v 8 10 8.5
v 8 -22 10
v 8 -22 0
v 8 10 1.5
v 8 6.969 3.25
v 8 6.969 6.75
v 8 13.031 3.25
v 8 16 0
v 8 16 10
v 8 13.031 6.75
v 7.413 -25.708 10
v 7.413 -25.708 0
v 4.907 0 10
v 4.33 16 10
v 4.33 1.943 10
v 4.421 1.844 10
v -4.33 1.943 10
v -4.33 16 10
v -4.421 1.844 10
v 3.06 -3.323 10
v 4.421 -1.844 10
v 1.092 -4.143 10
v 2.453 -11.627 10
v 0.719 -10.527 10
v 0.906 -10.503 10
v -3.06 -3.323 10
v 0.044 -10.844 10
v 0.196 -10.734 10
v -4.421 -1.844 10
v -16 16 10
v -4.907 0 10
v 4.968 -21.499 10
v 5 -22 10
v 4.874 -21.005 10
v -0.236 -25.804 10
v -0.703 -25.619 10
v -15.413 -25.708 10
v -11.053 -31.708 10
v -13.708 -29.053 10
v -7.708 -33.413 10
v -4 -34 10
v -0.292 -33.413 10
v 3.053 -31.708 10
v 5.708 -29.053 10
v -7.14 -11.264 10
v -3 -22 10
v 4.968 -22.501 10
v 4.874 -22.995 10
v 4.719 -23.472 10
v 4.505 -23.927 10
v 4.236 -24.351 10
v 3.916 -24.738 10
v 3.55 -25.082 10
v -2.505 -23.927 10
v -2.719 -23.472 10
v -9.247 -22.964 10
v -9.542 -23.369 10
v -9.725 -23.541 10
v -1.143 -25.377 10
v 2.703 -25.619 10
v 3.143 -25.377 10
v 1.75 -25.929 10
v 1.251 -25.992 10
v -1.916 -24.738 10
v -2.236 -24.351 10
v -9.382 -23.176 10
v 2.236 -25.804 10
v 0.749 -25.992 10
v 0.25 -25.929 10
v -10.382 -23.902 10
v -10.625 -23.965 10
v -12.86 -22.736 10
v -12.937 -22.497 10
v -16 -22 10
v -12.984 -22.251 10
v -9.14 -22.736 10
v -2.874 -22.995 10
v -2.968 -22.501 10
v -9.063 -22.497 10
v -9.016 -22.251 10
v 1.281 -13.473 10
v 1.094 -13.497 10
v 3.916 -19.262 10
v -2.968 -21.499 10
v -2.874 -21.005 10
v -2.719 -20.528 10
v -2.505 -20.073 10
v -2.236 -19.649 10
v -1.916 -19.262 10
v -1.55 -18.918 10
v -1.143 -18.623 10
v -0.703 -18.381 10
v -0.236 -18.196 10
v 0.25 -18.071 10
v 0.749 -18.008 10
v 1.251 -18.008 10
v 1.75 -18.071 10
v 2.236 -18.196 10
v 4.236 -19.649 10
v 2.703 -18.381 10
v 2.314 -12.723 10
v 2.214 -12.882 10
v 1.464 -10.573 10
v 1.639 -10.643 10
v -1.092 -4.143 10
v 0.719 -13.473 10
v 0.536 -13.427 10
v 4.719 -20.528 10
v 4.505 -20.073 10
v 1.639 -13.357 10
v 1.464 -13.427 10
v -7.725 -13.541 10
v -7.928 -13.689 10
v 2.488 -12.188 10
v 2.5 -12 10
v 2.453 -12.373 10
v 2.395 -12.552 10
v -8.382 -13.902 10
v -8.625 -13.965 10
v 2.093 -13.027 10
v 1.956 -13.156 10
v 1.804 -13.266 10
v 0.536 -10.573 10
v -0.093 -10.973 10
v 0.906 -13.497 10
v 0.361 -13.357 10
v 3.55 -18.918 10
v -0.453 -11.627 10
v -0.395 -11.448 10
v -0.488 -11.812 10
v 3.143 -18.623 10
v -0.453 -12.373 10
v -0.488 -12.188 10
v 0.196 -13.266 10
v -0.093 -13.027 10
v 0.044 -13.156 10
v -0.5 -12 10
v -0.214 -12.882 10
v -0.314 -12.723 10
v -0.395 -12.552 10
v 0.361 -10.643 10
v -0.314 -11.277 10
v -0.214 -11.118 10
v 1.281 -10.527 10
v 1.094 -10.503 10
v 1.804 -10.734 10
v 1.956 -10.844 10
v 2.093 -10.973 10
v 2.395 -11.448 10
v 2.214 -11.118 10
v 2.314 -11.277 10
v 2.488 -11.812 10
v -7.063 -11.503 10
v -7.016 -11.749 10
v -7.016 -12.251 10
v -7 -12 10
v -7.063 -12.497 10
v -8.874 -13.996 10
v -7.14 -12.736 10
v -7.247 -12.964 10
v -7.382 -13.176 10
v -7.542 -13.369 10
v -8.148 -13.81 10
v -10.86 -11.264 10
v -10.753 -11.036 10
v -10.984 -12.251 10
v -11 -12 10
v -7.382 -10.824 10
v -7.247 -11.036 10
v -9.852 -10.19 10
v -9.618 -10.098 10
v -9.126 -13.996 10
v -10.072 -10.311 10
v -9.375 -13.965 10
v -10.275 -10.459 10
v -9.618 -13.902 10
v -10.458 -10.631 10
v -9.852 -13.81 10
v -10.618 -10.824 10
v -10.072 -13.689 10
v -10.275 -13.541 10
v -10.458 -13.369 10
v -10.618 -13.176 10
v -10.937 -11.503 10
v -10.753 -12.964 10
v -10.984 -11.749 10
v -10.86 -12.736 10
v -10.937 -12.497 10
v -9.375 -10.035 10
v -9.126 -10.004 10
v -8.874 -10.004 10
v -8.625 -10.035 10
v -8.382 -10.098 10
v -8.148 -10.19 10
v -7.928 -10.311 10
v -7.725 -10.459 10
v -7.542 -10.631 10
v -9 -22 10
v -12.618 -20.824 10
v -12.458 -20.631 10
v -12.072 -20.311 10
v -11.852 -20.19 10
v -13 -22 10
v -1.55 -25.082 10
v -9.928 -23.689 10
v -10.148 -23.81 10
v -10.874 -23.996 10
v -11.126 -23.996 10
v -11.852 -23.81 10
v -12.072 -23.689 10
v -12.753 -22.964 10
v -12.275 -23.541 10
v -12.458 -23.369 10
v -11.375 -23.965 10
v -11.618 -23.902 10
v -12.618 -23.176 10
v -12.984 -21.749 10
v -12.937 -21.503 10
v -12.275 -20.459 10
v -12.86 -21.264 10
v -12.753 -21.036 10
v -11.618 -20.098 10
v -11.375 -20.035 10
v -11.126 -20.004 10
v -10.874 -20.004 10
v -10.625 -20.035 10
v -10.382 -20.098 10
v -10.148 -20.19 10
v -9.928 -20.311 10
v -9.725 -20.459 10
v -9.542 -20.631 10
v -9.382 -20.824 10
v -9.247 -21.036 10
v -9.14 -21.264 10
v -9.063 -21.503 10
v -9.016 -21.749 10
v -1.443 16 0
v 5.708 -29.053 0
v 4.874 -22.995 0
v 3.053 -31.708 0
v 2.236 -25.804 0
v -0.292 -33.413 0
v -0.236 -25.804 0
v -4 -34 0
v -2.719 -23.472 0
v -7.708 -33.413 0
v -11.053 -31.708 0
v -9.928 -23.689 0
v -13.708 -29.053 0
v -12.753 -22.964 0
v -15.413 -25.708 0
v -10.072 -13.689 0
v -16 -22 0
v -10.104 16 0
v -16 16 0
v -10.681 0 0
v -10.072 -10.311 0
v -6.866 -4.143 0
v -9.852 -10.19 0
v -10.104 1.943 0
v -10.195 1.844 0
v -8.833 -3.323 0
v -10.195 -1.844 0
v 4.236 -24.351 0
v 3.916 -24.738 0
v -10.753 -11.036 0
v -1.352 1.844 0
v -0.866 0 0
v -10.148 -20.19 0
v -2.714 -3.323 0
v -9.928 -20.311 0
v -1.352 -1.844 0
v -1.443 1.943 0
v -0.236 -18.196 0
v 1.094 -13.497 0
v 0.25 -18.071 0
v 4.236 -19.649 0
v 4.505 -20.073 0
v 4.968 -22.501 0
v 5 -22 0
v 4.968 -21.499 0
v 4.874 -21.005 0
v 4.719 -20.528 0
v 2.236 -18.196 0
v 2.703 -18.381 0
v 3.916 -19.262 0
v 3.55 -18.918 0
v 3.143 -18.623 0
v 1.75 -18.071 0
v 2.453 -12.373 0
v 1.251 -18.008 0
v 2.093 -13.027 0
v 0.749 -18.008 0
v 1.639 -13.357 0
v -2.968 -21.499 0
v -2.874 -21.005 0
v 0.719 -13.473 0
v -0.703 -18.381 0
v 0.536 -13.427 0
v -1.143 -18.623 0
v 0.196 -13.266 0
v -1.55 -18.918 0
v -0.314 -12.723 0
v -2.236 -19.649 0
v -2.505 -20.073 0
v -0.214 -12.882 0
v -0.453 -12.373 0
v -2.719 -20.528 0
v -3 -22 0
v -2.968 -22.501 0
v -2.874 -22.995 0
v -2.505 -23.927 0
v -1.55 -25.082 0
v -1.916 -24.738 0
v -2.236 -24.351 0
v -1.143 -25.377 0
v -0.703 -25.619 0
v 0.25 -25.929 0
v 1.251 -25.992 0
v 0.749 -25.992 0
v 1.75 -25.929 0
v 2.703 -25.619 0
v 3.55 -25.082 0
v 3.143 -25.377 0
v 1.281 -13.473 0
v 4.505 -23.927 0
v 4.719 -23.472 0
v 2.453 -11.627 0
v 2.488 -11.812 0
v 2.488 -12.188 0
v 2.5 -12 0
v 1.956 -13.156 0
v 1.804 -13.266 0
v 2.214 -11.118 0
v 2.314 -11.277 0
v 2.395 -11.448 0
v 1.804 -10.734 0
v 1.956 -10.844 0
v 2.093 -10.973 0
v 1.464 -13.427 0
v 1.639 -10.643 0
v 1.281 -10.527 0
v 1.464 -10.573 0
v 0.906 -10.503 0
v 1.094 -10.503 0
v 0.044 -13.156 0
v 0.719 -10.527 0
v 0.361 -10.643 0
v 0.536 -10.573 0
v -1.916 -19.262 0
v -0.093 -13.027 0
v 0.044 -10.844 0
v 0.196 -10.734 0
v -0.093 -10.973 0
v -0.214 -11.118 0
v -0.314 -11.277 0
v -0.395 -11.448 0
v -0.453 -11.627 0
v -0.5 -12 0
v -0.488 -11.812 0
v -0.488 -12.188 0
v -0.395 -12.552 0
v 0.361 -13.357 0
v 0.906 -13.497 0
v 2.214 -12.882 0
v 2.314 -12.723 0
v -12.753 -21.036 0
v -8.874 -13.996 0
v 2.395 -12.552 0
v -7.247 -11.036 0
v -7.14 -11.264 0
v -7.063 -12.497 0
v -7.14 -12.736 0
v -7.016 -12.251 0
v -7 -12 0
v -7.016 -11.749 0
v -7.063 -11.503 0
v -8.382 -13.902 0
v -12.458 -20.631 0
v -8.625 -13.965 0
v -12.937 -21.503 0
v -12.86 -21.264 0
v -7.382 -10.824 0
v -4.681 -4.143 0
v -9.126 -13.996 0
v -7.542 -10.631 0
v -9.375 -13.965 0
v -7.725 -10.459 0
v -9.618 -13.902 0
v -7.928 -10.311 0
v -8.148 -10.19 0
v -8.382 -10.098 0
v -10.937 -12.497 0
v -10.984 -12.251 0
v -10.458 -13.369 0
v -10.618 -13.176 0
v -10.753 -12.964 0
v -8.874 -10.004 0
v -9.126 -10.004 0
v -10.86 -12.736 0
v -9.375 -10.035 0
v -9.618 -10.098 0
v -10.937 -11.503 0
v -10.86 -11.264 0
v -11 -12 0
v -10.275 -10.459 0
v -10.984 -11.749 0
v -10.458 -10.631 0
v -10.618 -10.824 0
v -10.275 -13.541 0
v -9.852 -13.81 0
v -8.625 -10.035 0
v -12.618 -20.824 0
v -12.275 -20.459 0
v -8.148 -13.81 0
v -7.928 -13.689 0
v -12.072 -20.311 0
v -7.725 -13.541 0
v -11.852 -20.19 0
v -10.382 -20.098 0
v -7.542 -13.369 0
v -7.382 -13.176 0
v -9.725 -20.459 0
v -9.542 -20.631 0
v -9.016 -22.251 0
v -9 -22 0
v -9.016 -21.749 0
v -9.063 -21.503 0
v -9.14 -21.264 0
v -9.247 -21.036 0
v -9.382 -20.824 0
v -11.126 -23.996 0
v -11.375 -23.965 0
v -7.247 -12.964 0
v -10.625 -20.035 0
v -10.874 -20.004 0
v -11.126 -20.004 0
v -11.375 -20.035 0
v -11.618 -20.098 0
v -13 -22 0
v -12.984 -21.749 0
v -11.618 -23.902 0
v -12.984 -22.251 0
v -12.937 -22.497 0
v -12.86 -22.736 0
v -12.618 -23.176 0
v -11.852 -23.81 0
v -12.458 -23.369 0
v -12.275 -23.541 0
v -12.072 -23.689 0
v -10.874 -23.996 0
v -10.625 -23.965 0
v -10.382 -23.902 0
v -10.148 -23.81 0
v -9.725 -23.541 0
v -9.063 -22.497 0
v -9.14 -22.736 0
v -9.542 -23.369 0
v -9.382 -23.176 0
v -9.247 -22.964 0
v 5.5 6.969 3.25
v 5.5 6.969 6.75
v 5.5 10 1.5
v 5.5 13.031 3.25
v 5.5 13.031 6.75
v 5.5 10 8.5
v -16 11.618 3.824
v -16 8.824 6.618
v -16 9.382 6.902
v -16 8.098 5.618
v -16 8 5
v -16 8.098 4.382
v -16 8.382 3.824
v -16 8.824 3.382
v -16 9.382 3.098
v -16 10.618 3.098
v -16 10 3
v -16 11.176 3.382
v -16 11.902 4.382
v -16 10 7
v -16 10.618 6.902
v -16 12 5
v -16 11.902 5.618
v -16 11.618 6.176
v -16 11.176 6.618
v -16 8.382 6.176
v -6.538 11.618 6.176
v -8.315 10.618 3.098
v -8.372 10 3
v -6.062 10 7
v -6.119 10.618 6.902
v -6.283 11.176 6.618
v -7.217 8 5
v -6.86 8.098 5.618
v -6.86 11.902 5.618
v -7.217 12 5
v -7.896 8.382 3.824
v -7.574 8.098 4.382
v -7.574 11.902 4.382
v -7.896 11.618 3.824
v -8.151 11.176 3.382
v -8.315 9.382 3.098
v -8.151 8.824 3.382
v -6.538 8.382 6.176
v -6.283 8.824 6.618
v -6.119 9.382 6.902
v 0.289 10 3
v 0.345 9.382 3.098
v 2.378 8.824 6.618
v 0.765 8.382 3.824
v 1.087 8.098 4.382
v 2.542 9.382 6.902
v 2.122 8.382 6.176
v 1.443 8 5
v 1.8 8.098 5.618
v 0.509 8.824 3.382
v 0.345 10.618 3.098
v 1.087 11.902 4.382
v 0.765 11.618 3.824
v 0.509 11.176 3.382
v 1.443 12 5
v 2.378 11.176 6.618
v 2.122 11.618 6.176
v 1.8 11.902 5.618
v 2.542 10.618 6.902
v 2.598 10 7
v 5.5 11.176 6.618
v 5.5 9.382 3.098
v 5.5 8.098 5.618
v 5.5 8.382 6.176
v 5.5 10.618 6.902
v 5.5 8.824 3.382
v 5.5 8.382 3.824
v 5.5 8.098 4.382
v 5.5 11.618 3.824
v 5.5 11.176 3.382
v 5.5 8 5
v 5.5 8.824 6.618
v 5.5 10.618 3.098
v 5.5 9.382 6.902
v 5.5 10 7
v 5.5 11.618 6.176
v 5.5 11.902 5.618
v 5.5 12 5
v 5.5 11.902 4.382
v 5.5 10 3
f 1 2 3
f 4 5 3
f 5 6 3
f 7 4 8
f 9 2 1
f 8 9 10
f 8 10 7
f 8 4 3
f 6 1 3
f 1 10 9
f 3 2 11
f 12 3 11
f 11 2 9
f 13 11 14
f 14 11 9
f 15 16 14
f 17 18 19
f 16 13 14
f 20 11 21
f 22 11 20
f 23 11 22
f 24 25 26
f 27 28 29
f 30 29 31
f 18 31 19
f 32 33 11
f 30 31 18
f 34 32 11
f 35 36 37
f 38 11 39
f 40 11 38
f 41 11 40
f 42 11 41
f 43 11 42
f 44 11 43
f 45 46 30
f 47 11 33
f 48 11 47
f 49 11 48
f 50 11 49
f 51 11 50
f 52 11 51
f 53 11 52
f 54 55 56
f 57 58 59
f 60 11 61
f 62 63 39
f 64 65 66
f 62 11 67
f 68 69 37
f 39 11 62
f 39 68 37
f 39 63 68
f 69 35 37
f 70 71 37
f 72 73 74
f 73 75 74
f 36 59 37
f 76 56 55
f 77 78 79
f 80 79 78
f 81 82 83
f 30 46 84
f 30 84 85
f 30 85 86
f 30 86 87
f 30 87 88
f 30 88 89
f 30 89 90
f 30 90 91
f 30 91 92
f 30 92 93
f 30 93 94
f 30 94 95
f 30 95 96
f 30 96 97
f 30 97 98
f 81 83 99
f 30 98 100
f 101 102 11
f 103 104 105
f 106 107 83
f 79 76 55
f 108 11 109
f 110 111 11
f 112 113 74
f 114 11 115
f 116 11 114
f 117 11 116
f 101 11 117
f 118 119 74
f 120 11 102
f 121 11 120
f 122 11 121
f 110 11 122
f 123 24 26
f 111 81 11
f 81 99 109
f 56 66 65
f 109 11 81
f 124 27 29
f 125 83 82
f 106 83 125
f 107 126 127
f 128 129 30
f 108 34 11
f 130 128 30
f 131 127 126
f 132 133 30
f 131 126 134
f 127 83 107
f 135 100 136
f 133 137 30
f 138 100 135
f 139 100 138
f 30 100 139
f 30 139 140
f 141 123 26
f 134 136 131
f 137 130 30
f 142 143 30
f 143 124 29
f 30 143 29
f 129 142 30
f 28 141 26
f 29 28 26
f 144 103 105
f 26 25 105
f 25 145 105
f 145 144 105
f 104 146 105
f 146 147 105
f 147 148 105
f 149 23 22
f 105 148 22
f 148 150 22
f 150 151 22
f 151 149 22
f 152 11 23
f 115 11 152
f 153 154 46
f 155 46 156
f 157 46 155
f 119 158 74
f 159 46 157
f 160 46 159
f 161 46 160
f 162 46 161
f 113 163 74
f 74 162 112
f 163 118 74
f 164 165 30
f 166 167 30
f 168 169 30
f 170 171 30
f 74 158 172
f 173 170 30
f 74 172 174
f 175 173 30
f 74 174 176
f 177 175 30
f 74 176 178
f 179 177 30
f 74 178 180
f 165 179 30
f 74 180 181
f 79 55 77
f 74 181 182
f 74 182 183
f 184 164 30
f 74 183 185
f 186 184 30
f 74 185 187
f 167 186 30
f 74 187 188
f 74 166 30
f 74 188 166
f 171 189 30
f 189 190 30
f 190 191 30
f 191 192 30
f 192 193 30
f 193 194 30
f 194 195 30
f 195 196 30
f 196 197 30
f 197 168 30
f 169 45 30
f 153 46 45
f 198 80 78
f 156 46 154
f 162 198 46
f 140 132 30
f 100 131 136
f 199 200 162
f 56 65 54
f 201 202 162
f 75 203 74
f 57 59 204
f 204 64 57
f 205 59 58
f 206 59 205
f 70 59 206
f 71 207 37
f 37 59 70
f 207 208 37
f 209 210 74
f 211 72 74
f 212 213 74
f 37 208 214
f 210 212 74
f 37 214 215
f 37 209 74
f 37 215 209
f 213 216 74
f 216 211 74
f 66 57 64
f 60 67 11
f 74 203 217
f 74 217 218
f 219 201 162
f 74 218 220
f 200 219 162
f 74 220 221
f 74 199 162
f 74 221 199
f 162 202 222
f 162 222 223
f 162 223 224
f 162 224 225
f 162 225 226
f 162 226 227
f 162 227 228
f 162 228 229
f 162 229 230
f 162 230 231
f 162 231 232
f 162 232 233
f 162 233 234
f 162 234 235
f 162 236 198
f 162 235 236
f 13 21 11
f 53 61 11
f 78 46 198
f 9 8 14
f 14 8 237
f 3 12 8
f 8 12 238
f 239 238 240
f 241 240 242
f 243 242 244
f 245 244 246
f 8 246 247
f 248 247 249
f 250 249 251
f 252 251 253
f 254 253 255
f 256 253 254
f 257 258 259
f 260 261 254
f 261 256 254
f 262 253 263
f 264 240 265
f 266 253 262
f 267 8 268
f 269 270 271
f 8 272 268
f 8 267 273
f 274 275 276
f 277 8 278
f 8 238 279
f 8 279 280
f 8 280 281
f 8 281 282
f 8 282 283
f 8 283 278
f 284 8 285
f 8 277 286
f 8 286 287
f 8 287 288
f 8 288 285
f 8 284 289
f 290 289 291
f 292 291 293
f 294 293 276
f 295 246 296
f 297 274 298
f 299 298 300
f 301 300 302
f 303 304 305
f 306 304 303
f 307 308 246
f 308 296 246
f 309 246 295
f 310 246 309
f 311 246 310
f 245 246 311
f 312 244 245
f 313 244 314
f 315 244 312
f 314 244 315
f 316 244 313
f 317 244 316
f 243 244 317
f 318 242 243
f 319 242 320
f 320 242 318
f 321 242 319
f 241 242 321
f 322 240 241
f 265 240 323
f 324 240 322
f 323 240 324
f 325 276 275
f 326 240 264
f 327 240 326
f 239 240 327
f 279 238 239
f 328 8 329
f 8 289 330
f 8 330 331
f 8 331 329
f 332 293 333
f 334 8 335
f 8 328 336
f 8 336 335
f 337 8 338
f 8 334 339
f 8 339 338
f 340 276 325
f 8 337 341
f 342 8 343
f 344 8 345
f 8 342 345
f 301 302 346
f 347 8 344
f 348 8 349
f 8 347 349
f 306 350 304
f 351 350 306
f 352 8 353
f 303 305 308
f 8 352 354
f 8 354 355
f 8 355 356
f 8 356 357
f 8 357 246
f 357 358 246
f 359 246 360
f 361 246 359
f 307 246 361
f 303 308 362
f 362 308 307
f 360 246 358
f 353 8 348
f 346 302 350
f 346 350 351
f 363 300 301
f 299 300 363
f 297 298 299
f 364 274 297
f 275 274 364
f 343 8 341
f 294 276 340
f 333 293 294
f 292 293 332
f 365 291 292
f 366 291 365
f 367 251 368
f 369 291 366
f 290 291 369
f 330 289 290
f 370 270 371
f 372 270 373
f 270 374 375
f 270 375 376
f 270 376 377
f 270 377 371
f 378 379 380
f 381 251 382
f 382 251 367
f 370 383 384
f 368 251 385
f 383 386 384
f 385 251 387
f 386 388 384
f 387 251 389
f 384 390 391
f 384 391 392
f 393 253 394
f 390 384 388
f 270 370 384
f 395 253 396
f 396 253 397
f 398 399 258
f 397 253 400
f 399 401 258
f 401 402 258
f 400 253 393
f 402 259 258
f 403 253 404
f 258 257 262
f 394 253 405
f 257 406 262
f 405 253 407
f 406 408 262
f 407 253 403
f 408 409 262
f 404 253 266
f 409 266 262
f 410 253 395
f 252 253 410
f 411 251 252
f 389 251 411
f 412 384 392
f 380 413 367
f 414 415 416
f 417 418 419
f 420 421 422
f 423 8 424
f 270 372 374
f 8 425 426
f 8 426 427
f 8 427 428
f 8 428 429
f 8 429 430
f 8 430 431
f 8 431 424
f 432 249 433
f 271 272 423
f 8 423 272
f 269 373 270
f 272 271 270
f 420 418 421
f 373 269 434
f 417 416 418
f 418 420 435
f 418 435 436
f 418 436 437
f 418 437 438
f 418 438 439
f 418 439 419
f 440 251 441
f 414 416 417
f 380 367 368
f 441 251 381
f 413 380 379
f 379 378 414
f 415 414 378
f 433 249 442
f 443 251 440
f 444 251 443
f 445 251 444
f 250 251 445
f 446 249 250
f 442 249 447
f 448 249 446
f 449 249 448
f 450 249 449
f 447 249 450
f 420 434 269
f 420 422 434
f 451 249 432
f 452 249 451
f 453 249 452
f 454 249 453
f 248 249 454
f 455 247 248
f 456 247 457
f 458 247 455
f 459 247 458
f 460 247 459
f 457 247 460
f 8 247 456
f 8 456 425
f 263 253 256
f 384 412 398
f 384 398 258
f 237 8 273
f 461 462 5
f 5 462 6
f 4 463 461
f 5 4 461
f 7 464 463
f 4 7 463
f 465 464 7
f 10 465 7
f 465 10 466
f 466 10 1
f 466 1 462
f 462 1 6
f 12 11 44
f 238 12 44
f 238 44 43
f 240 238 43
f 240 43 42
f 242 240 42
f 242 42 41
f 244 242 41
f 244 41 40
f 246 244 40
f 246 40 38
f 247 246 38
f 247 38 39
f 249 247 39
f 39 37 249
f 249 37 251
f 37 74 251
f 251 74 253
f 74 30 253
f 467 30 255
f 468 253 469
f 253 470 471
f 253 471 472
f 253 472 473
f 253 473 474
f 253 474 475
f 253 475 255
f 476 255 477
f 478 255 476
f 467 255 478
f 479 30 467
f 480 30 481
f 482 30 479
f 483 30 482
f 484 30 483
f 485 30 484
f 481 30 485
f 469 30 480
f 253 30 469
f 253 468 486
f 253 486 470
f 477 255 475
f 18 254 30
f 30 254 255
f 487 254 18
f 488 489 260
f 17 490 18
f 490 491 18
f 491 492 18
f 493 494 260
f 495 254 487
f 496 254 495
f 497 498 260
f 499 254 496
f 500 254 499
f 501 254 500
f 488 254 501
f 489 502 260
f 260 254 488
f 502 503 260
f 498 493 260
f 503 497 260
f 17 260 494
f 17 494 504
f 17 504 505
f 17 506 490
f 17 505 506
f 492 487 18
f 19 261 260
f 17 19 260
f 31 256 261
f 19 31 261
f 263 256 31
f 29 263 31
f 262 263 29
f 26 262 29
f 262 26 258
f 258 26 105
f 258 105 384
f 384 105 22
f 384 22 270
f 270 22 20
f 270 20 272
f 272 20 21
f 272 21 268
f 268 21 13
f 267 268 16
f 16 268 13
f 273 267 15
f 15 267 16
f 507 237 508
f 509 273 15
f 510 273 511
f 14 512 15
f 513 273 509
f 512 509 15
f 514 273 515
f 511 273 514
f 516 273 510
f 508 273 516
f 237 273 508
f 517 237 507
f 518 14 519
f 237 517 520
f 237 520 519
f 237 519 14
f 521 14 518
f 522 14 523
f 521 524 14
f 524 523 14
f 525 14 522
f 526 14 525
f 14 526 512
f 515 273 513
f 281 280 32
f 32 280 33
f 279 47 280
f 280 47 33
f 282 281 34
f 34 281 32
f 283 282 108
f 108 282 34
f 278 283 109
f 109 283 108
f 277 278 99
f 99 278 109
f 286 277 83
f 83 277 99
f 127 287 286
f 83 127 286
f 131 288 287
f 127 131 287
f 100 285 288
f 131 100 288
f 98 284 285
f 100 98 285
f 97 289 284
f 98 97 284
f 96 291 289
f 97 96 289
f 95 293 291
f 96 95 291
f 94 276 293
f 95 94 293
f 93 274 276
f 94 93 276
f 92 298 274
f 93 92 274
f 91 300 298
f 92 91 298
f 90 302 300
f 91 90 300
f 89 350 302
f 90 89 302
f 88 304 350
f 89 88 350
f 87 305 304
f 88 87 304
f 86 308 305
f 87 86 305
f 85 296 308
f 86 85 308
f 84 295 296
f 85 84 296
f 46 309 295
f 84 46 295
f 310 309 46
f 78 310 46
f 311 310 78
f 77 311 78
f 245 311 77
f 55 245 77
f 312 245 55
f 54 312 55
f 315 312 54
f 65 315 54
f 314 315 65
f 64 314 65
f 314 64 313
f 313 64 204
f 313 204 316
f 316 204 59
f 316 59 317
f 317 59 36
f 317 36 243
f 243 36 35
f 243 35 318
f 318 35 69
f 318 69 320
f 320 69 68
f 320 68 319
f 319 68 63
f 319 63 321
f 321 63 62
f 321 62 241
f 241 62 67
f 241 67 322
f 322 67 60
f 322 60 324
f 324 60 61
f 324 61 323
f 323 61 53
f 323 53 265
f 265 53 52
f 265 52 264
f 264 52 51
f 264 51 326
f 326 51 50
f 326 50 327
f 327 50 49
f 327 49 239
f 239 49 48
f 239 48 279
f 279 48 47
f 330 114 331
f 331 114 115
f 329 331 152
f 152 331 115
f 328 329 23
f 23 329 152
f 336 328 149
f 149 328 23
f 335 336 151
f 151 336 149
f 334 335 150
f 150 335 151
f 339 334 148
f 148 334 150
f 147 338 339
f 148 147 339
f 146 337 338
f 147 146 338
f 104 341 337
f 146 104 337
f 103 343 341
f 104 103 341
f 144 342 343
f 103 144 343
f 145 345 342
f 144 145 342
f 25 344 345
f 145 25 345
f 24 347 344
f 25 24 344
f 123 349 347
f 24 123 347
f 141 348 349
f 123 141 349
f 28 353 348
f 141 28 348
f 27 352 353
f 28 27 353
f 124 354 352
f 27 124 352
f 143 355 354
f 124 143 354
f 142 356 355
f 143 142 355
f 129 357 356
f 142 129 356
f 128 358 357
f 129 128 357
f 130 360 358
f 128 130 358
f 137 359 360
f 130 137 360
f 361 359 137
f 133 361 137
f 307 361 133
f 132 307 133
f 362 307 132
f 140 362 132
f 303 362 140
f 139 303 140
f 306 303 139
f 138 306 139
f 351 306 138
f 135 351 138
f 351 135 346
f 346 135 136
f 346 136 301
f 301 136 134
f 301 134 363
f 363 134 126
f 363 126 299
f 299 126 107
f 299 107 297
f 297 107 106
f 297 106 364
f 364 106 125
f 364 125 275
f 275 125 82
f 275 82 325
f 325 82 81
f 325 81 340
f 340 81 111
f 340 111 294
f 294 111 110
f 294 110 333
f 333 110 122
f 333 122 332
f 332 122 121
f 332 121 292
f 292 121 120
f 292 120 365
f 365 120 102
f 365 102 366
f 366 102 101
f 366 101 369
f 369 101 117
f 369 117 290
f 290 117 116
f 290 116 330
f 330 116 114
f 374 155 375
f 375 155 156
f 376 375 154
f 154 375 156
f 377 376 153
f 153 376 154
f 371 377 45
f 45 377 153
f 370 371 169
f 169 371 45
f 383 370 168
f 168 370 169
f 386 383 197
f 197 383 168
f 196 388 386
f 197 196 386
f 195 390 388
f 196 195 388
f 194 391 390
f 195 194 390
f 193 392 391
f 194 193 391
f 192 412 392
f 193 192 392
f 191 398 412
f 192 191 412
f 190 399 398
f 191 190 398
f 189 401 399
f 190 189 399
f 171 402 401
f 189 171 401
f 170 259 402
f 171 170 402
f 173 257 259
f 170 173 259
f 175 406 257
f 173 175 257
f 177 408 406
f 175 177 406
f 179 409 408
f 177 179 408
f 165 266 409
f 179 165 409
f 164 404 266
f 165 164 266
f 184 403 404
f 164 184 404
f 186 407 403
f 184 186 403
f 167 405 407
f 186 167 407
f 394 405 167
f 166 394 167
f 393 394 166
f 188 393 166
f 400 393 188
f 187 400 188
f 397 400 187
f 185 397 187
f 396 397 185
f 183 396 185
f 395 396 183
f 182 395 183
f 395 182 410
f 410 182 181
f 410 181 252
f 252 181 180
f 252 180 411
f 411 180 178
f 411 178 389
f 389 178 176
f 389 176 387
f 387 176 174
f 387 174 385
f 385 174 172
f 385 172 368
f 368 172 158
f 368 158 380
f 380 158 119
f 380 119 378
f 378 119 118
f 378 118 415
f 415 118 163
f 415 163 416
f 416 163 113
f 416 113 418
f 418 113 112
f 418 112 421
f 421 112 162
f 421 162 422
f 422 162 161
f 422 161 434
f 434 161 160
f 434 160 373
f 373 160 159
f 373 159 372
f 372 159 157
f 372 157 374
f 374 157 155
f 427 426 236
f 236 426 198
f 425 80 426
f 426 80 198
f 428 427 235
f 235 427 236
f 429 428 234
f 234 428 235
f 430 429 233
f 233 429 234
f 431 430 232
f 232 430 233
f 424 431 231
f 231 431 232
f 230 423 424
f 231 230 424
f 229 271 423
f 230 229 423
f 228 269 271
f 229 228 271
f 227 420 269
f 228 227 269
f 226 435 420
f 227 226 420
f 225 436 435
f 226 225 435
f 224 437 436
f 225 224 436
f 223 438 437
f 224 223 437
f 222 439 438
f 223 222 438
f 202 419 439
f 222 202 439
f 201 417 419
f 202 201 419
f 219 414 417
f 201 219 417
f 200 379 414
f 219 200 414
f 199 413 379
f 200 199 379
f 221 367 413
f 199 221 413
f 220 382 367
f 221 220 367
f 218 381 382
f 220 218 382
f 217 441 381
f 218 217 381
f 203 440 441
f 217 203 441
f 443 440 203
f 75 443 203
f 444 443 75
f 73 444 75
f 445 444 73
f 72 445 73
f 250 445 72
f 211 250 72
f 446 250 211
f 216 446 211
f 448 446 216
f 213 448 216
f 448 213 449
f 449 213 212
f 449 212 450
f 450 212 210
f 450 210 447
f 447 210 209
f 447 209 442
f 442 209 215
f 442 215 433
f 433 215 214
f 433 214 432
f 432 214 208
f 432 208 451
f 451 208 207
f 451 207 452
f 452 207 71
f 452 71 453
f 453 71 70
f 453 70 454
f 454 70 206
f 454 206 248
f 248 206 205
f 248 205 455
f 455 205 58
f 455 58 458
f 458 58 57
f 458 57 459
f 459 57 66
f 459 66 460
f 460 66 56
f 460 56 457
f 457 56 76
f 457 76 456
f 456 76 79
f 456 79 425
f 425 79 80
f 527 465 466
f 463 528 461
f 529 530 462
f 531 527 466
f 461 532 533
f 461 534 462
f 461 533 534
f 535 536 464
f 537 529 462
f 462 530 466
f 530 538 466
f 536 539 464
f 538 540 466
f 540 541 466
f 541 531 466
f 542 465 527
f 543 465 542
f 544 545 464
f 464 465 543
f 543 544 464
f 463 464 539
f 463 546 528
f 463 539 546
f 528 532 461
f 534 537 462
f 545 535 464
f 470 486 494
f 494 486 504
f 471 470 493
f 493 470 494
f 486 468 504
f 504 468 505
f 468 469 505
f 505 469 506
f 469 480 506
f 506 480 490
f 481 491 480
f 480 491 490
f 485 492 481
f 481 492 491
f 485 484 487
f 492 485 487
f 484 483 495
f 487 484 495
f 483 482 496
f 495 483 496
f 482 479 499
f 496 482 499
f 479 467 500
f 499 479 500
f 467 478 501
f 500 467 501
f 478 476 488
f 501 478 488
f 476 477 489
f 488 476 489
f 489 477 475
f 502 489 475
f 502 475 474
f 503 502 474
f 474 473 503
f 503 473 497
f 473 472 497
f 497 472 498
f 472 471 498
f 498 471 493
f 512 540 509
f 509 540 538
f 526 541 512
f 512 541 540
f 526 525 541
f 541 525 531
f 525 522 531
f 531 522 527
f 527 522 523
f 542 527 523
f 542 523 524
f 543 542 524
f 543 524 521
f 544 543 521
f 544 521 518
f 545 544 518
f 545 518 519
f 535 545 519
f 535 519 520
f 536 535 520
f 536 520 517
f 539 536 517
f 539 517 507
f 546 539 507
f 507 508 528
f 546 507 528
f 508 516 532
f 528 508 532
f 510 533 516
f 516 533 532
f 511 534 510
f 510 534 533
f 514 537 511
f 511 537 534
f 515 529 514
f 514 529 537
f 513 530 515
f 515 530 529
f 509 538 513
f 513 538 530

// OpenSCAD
// nischi prusa lamp holder


screwhole = 4; 		//for 3mm screw, to mount opto stop
nuttrap=7; 			//hole for nut - 3mm nut measured, thickness 2.5 
gap_width = 10;

body_width=24; 	//rod end
body_height=10; 	//rod end
screw_elevation = body_height/2; // set at half of body_height 

translate([0,0,body_height ]) rotate([0,-180,0]) tool_holder();

module tool_holder()
{
difference()
{
  union()
  {
	translate([-8,0,0 ]) cube([body_width,16,body_height]);  
	//cylinder(body_height,8,8,$fn=20);
	translate([-8,-22,0 ]) cube([body_width,22,body_height]); //opto end
      translate([4,-22,0 ]) cylinder(body_height, r=body_width/2,$fn=20);
  }

  union()
  {
     rotate([0,30,0]) cutting();

      translate([-1, -12, -1]) cylinder(h = body_height+2, r1=3/2, r2=3/2 ,$fn = 50);
      translate([ 9, -12, -1]) cylinder(h = body_height+2, r1=4/2, r2=4/2 ,$fn = 50);
      translate([ -1, -22, -1]) cylinder(h = body_height+2, r1=4, r2=4 ,$fn = 50);
      translate([ 11, -22, -1]) cylinder(h = body_height+2, r1=4/2, r2=4/2 ,$fn = 50);
      

      // translate([4,-17,-1]) cylinder(h = body_height+2, r1=3, r2=3 ,$fn = 50);	
      // translate([4,-17,-1]) cylinder(h = body_height/3*2, r1=9, r2=4 ,$fn = 50);	

	//screw to hold to rod
	translate([0,10,screw_elevation]) rotate([0,90,0]) 
		cylinder(40,screwhole/2, screwhole/2, $fn=20,center=true); //screw hole
	translate([-8,10,screw_elevation]) rotate([0,90,0]) 
		cylinder(5,nuttrap/2,nuttrap/2, $fn=6,center=true); //nut trap
    }
  }
}

module cutting()
{
	translate([0,     0, -5 ]) cylinder((body_height+20),4.25,4.25);  // for 8mm threaded rod
	translate([-3.75,0, -5 ]) cube([7.5,25,(body_height+20)]);   // long slot 

}
